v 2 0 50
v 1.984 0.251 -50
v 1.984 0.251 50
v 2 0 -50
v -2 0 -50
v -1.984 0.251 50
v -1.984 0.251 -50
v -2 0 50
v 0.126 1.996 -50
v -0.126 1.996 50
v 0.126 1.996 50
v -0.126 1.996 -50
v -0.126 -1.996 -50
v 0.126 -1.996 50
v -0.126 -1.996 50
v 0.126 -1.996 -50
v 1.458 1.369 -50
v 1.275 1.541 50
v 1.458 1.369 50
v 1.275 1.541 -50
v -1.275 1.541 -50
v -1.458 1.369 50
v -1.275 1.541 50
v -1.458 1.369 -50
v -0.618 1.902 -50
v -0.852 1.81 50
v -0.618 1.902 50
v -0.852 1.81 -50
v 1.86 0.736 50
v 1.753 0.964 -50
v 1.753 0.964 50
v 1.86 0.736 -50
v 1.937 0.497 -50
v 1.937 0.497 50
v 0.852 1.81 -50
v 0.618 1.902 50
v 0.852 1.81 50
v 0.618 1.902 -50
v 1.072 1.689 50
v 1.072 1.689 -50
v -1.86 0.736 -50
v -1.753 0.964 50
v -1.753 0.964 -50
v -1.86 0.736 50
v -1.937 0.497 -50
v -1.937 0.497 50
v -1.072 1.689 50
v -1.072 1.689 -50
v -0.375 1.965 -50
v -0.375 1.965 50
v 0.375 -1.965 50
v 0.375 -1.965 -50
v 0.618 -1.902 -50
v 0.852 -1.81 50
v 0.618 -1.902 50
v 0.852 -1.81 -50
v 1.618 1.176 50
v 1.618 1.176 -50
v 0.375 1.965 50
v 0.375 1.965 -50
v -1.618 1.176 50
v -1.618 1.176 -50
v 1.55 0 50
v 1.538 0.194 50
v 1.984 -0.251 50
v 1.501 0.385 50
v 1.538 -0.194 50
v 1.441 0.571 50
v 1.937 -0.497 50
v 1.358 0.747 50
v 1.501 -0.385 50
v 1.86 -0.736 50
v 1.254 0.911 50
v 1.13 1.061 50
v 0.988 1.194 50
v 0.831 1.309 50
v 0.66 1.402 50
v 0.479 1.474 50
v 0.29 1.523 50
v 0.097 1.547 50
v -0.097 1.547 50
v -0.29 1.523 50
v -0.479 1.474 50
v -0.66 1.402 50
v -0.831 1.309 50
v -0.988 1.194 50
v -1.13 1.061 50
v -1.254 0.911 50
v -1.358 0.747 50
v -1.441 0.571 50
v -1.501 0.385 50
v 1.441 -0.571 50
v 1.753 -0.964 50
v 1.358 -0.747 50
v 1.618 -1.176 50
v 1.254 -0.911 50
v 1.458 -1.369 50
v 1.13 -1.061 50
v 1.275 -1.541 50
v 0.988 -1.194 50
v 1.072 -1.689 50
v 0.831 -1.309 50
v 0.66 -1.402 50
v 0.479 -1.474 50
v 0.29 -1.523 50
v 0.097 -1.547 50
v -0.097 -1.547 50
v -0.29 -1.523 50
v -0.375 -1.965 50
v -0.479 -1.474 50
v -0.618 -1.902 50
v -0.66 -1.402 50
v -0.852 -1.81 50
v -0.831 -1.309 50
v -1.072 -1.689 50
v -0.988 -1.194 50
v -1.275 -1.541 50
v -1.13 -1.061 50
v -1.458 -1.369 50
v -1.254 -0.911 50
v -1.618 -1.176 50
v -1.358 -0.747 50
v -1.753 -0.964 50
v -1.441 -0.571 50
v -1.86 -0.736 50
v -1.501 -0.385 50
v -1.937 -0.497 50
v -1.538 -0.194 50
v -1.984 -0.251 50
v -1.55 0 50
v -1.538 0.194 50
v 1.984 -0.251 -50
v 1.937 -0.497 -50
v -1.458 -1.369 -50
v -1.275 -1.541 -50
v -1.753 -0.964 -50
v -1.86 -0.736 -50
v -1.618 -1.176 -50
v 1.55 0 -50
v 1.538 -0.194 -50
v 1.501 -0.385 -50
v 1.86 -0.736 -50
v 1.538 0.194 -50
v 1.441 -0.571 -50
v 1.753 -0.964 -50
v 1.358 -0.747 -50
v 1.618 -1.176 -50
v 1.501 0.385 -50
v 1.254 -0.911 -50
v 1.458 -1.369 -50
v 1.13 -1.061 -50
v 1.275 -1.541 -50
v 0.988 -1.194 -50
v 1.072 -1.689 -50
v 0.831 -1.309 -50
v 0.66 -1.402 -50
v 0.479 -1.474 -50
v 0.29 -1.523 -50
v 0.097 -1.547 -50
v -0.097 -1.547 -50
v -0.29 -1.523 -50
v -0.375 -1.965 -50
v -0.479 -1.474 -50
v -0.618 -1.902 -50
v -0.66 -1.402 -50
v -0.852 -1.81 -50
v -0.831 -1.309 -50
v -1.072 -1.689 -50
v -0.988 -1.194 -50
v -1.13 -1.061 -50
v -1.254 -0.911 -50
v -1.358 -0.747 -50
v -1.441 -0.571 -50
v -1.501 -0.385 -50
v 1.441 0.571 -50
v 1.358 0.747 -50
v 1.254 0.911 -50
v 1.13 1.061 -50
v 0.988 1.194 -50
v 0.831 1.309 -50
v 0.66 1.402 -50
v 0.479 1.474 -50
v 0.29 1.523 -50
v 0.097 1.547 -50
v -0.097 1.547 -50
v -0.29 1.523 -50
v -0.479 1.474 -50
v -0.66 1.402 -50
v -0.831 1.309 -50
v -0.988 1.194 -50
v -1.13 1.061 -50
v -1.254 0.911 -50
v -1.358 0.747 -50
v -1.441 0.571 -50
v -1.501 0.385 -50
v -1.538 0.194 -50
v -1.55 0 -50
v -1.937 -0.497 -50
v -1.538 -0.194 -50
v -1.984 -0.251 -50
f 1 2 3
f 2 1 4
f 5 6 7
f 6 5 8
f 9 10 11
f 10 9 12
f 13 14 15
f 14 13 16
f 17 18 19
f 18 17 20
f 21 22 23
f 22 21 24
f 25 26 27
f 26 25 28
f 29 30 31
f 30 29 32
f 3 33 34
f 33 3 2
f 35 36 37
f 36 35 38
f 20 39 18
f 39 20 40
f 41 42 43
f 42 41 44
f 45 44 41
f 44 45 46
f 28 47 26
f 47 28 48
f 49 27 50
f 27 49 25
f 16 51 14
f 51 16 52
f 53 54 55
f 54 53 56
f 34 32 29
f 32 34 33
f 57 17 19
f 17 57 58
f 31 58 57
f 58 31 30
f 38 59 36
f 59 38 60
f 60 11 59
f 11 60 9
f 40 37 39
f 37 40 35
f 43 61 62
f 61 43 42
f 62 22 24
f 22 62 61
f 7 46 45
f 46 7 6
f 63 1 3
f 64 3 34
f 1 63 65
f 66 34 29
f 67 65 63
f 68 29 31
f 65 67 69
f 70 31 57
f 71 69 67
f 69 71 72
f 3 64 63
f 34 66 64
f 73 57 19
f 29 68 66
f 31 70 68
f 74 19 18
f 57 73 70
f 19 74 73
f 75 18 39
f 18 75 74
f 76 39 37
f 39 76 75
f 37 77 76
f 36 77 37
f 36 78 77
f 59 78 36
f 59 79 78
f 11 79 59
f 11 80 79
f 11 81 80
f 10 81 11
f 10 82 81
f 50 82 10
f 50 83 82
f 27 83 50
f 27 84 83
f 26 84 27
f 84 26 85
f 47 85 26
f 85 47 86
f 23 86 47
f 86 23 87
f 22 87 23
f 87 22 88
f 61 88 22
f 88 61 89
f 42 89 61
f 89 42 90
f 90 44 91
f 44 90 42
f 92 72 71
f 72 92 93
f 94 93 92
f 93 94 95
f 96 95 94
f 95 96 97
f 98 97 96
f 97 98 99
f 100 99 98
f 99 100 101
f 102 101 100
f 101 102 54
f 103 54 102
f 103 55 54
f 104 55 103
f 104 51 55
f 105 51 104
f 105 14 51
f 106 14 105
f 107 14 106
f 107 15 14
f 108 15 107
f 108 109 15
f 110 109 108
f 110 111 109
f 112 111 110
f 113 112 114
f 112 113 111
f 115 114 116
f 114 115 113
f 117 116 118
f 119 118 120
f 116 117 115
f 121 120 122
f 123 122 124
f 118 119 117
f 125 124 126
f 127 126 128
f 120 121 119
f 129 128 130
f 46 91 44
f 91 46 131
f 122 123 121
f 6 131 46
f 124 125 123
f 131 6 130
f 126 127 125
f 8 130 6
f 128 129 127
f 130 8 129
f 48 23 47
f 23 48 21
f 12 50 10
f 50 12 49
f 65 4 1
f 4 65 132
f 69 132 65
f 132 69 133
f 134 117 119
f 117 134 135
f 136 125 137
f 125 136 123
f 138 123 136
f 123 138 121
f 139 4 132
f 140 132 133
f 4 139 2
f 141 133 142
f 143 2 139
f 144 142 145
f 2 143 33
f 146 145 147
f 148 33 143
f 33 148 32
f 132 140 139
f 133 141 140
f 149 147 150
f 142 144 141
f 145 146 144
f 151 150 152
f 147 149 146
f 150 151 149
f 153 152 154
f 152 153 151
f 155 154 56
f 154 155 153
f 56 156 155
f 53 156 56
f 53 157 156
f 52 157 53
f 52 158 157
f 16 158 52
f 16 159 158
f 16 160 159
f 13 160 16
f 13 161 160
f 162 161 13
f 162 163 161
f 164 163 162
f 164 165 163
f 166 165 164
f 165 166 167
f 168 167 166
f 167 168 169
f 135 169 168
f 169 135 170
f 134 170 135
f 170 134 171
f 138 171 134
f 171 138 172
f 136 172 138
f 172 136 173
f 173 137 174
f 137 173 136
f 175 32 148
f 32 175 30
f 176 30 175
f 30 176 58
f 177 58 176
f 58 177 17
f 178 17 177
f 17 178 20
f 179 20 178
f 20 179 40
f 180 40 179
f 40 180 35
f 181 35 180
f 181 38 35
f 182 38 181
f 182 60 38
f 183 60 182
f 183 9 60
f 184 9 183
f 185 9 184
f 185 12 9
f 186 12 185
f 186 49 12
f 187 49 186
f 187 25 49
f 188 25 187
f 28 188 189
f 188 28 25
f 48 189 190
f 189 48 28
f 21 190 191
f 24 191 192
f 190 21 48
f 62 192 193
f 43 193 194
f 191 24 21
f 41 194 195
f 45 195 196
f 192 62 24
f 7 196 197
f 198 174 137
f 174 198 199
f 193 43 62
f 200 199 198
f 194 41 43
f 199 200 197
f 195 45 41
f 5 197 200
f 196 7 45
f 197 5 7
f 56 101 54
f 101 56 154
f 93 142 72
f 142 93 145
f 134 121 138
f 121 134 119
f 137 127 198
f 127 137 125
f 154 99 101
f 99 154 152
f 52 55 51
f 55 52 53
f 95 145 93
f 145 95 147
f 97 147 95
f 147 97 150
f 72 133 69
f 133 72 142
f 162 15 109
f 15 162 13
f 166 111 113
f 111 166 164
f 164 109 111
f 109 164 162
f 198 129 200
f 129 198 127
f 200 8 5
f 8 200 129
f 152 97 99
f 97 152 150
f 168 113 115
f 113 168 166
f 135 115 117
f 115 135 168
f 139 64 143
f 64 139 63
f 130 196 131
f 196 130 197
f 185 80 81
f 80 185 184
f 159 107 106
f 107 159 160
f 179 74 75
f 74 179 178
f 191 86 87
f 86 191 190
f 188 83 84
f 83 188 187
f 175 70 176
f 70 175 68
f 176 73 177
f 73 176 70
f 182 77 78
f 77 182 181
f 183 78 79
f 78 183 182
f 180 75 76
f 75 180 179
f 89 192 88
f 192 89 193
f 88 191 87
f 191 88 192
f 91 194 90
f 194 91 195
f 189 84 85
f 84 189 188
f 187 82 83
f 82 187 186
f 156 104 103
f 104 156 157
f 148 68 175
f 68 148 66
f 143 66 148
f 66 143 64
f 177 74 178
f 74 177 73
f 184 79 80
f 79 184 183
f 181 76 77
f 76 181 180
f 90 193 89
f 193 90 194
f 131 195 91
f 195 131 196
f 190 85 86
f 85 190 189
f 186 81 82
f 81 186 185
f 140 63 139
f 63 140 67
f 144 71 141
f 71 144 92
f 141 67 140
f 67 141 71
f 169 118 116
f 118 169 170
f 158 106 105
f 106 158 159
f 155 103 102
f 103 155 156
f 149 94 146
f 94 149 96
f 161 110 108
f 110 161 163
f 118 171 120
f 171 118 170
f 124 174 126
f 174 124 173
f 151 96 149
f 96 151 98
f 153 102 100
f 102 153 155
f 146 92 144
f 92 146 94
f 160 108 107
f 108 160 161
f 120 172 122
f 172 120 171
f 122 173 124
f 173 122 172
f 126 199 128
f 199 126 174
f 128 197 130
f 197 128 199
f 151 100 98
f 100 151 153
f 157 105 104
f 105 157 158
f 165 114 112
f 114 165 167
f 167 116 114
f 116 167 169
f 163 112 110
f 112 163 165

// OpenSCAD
$fn = 50;


difference() {
	union() {
		translate(v = [0, 0, -50.0000000000]) {
			cylinder(h = 100, r = 2.0000000000);
		}
	}
	union() {
		translate(v = [0, 0, -100.0000000000]) {
			cylinder(h = 200, r = 1.5500000000);
		}
	}
}
